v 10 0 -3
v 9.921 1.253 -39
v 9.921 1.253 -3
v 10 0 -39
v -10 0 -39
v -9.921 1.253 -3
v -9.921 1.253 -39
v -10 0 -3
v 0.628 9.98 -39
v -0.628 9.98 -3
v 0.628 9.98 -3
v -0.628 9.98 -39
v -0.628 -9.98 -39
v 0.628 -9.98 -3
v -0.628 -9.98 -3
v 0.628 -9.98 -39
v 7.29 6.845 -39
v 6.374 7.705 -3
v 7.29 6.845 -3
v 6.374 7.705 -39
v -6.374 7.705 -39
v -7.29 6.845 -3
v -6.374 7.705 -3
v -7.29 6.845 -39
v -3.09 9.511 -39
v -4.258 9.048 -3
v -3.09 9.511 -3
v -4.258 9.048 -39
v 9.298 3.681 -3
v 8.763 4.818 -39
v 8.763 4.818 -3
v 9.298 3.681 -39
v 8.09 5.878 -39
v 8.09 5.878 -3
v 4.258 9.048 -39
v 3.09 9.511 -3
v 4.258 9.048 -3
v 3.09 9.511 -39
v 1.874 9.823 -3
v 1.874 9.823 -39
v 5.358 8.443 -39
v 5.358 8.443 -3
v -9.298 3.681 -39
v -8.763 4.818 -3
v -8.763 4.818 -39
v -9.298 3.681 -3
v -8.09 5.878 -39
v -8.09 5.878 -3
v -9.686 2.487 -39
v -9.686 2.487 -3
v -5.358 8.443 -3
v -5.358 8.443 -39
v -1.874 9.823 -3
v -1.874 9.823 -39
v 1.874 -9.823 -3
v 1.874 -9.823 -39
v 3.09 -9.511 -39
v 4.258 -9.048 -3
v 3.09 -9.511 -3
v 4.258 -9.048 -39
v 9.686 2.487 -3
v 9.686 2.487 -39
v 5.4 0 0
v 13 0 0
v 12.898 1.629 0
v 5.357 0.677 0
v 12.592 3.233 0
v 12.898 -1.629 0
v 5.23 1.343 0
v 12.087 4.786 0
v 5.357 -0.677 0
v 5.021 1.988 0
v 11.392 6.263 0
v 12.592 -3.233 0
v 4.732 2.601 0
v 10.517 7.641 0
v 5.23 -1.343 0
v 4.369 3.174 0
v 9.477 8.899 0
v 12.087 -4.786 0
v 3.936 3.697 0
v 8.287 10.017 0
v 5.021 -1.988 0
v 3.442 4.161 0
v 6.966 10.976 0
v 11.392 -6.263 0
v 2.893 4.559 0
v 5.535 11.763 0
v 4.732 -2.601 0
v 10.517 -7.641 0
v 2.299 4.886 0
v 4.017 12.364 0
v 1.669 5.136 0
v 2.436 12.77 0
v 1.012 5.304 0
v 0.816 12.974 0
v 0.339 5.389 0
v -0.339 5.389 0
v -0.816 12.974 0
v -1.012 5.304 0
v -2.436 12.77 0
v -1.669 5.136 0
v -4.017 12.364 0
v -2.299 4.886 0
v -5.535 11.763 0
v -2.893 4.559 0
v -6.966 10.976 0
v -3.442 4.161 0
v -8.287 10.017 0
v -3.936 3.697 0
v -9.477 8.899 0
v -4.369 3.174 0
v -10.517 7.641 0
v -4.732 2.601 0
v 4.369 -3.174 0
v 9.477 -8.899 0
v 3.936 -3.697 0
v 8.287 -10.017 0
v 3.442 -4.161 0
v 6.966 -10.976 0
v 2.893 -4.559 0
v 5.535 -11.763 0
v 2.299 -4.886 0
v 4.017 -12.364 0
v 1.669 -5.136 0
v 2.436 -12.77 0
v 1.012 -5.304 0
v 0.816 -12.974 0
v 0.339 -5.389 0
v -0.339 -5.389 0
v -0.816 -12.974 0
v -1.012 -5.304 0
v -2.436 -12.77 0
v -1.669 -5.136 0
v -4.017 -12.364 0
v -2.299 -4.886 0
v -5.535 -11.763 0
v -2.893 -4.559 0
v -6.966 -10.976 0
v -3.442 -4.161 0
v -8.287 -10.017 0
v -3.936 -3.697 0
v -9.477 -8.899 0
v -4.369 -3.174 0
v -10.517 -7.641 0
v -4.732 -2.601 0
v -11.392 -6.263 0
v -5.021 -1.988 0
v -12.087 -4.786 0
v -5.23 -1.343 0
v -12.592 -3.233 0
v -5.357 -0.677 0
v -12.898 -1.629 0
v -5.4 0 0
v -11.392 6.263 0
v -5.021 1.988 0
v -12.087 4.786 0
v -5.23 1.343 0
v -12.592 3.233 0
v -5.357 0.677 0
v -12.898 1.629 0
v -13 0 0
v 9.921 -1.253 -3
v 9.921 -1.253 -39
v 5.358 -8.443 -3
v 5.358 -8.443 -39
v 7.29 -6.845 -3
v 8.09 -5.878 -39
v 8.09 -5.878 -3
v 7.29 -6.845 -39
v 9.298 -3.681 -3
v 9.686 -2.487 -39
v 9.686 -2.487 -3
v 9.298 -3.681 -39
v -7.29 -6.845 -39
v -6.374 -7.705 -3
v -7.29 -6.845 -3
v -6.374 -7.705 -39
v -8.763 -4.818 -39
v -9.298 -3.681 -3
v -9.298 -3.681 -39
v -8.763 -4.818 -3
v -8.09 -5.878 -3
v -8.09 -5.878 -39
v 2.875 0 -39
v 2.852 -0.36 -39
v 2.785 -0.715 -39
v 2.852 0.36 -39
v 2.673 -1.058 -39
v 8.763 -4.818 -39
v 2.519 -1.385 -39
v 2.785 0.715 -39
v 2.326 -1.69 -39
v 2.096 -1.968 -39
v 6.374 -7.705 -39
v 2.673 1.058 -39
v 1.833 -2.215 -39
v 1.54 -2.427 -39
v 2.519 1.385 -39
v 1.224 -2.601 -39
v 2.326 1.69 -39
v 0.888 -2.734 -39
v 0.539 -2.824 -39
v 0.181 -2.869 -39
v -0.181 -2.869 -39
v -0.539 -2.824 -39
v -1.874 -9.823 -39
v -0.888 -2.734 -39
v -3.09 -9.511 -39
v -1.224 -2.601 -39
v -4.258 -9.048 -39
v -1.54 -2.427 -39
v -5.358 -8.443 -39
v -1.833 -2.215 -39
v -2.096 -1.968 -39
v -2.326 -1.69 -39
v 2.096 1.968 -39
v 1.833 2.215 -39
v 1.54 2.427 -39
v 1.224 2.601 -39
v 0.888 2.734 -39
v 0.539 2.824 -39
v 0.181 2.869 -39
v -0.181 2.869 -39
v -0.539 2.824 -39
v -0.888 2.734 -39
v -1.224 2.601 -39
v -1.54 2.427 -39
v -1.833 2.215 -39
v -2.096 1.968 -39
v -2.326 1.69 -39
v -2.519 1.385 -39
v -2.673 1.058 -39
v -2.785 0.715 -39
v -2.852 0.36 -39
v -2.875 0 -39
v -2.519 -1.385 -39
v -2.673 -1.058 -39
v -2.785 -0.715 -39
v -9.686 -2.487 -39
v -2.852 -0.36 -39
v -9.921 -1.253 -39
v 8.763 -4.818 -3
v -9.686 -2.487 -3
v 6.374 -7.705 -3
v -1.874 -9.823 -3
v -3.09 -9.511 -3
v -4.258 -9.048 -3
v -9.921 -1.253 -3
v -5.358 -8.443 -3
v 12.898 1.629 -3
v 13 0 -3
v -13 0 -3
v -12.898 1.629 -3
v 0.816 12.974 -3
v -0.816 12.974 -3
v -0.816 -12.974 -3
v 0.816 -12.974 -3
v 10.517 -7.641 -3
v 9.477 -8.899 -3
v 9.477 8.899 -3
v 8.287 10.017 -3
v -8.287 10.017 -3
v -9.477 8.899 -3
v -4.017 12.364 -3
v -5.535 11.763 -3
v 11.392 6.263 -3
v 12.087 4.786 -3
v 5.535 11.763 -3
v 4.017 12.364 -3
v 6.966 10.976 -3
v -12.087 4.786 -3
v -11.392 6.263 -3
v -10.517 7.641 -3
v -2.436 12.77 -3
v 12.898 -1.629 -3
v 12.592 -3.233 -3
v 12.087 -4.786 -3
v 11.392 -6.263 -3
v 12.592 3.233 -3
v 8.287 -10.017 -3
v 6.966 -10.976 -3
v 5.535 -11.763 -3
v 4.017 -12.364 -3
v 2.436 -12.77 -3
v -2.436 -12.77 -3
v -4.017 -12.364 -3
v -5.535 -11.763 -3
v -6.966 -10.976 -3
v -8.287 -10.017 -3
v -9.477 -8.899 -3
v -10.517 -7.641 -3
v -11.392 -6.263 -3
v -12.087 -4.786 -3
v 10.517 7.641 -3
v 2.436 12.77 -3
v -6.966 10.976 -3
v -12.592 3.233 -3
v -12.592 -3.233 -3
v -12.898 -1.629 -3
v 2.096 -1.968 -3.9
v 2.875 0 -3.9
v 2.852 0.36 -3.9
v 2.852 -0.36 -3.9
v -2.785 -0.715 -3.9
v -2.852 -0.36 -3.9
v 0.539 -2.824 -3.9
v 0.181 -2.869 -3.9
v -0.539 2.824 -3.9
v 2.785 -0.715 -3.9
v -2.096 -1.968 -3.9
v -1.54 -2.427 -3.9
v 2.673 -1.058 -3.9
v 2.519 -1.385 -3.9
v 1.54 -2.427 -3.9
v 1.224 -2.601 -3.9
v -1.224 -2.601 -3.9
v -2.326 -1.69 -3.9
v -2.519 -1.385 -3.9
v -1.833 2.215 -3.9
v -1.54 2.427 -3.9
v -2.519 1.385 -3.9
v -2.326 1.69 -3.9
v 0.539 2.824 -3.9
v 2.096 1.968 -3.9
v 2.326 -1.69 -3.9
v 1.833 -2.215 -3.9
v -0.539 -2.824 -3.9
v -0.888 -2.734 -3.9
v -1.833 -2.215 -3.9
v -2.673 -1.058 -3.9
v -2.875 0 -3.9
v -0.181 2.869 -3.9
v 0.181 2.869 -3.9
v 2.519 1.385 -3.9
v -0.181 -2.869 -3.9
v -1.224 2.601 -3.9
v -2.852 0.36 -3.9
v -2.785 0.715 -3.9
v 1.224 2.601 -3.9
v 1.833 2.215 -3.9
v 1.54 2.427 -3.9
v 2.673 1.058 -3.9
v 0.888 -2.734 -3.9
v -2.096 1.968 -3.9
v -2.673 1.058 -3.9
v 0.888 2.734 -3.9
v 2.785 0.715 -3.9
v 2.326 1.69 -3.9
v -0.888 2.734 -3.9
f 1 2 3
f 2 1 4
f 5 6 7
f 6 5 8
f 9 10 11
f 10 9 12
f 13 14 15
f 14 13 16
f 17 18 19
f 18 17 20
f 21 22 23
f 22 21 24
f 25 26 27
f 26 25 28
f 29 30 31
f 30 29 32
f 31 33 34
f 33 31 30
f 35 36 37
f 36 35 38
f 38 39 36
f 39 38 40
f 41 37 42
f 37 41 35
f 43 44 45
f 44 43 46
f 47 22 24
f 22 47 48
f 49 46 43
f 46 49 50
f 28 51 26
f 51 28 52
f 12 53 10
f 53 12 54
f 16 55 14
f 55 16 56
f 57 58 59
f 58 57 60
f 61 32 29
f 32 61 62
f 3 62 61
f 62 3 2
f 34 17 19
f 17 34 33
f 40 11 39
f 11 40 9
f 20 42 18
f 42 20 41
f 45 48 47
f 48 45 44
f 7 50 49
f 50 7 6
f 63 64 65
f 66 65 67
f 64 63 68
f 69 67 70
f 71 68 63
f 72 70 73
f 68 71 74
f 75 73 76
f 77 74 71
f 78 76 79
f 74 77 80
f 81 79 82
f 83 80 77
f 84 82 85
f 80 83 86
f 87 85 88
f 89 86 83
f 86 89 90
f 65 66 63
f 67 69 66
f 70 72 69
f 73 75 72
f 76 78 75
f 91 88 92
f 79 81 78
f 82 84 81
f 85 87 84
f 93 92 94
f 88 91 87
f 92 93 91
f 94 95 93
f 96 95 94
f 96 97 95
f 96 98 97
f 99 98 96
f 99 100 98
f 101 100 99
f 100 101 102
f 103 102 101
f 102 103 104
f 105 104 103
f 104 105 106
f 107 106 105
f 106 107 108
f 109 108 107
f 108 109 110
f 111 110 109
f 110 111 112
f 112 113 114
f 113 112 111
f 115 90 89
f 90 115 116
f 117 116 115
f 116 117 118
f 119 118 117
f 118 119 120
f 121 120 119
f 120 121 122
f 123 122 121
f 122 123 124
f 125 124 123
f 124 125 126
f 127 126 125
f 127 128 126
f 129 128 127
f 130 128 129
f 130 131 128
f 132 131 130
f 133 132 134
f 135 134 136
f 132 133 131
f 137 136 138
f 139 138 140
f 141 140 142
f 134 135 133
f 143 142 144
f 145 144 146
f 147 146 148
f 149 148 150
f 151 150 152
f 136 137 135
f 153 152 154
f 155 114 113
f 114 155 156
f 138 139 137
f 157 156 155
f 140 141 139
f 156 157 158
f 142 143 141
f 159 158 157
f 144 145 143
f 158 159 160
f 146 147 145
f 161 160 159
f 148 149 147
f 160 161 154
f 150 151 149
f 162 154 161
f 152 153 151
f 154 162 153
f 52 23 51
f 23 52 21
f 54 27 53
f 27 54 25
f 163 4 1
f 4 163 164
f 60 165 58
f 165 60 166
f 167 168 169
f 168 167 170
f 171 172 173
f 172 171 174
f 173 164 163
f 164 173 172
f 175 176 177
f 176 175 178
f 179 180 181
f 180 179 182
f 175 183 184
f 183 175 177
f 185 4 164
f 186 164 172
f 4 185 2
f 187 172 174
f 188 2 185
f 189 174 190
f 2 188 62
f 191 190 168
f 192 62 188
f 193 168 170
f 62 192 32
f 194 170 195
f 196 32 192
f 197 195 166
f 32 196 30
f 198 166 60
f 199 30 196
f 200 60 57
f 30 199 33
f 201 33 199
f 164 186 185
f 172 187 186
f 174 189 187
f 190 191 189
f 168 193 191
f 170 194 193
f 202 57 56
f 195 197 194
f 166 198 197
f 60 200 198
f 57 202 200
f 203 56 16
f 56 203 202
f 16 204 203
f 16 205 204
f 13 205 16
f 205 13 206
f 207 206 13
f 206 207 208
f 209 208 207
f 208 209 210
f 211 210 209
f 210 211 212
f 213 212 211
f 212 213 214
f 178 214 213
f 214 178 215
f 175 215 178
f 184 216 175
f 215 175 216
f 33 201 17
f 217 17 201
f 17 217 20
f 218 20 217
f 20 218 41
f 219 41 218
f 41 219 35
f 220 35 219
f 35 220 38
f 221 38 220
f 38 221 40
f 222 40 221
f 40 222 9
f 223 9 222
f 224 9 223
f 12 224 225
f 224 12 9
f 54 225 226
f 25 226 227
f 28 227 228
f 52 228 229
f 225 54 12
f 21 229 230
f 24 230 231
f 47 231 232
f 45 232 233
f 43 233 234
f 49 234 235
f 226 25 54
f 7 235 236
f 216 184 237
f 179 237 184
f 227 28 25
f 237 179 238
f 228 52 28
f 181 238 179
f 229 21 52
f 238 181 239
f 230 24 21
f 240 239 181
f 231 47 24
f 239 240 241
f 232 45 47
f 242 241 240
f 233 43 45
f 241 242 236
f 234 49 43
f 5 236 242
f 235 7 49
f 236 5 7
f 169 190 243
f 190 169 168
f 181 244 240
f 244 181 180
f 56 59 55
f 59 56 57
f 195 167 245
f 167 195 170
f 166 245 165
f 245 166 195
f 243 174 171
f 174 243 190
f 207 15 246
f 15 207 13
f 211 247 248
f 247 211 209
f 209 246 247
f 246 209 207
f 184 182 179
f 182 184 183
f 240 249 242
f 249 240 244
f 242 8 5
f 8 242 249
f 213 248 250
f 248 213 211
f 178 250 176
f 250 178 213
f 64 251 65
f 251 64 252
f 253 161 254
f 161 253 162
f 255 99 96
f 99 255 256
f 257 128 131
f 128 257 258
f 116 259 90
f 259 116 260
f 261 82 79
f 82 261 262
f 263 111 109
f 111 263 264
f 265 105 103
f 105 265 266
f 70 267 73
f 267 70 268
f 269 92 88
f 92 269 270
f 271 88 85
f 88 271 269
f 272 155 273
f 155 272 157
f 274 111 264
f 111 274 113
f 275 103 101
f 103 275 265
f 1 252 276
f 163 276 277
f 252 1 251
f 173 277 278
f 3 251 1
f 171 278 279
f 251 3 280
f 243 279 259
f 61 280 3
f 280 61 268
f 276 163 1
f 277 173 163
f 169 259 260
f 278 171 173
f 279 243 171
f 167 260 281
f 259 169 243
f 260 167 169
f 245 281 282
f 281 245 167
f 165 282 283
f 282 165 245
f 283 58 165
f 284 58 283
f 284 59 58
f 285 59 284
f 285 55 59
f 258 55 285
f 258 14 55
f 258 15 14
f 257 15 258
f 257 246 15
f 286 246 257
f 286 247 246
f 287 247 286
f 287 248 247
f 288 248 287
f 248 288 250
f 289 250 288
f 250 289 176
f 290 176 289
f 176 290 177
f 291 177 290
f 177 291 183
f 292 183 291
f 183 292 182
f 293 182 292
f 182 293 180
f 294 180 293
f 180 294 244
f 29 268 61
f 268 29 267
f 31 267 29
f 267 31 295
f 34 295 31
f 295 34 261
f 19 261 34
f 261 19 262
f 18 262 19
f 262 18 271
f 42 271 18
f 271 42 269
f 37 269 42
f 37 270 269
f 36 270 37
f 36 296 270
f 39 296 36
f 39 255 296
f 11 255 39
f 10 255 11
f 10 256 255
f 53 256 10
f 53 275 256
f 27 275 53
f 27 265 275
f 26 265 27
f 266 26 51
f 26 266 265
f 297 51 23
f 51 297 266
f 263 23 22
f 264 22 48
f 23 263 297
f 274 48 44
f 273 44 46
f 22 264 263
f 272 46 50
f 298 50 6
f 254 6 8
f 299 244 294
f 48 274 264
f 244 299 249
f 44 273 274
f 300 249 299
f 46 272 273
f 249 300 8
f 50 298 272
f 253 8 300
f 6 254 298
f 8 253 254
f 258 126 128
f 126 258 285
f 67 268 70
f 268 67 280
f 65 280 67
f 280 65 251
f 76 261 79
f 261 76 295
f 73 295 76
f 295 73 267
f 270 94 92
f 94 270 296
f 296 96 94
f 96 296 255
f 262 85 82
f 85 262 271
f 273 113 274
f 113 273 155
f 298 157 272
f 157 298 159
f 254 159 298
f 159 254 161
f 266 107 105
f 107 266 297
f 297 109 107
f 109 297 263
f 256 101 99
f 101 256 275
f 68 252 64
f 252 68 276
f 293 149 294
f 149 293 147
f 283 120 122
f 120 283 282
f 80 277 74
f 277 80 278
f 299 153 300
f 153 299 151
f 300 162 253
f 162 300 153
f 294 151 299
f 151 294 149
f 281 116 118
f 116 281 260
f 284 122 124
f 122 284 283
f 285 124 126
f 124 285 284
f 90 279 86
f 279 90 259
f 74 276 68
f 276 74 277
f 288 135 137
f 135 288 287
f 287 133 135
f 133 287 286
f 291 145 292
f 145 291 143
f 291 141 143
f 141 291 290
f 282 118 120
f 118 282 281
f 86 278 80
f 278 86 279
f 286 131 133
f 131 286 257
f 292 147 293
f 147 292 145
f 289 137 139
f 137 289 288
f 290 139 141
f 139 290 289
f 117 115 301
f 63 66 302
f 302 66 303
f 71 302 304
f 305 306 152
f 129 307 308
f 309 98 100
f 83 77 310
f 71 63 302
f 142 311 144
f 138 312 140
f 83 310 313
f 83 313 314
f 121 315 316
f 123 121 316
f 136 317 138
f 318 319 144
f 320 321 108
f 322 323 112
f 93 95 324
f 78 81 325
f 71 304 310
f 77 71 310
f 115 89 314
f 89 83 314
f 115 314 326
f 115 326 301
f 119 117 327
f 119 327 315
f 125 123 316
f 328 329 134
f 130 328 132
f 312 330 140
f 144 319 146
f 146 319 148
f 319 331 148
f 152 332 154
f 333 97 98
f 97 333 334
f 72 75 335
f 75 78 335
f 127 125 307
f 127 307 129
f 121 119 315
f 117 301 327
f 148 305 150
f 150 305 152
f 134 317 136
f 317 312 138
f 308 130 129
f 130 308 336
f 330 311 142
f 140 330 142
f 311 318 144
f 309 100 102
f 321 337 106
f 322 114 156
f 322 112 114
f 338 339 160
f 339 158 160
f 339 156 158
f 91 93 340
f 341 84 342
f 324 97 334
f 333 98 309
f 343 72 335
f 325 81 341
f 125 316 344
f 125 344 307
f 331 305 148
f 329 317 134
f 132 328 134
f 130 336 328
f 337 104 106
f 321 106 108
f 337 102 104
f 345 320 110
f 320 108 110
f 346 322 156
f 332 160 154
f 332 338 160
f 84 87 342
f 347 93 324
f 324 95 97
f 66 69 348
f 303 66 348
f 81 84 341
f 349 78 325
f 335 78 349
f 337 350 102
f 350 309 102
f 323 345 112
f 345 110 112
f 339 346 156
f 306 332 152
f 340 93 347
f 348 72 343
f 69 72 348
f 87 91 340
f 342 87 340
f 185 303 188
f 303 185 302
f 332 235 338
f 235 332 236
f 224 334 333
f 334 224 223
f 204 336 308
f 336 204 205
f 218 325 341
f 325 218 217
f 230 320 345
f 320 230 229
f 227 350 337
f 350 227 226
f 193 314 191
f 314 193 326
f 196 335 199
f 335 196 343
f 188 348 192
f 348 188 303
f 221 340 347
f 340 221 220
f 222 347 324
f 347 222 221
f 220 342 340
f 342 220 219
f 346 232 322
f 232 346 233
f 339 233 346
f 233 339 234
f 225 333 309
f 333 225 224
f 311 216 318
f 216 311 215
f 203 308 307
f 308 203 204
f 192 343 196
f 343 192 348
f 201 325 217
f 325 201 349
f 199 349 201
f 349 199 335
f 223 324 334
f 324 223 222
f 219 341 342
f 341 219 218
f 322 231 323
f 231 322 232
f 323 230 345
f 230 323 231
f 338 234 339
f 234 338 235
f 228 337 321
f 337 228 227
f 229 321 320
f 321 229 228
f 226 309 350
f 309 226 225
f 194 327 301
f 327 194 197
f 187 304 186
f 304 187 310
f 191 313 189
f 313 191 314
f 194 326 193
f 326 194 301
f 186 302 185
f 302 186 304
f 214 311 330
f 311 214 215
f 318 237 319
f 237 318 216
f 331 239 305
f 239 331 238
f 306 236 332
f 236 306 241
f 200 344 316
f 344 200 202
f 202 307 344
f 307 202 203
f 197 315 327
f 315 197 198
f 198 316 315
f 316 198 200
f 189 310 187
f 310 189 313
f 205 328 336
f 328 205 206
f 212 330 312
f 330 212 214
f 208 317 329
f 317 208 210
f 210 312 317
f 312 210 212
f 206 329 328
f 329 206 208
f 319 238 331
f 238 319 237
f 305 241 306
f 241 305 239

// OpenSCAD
$fn = 50;


difference() {
	union() {
		translate(v = [0, 0, -39.0000000000]) {
			cylinder(h = 39, r = 10.0000000000);
		}
		translate(v = [0, 0, -3.0000000000]) {
			cylinder(h = 3, r = 13.0000000000);
		}
	}
	union() {
		translate(v = [0, 0, 0]) {
			rotate(a = [0, 0, 0]) {
				difference() {
					union() {
						#translate(v = [0, 0, -39.0000000000]) {
							cylinder(h = 39, r = 2.6000000000);
						}
						#translate(v = [0, 0, -3.9000000000]) {
							cylinder(h = 3.9000000000, r1 = 2.8750000000, r2 = 5.4000000000);
						}
						#translate(v = [0, 0, -39.0000000000]) {
							cylinder(h = 39, r = 2.8750000000);
						}
						#translate(v = [0, 0, -39.0000000000]) {
							cylinder(h = 39, r = 2.6000000000);
						}
					}
					union();
				}
			}
		}
	}
}
